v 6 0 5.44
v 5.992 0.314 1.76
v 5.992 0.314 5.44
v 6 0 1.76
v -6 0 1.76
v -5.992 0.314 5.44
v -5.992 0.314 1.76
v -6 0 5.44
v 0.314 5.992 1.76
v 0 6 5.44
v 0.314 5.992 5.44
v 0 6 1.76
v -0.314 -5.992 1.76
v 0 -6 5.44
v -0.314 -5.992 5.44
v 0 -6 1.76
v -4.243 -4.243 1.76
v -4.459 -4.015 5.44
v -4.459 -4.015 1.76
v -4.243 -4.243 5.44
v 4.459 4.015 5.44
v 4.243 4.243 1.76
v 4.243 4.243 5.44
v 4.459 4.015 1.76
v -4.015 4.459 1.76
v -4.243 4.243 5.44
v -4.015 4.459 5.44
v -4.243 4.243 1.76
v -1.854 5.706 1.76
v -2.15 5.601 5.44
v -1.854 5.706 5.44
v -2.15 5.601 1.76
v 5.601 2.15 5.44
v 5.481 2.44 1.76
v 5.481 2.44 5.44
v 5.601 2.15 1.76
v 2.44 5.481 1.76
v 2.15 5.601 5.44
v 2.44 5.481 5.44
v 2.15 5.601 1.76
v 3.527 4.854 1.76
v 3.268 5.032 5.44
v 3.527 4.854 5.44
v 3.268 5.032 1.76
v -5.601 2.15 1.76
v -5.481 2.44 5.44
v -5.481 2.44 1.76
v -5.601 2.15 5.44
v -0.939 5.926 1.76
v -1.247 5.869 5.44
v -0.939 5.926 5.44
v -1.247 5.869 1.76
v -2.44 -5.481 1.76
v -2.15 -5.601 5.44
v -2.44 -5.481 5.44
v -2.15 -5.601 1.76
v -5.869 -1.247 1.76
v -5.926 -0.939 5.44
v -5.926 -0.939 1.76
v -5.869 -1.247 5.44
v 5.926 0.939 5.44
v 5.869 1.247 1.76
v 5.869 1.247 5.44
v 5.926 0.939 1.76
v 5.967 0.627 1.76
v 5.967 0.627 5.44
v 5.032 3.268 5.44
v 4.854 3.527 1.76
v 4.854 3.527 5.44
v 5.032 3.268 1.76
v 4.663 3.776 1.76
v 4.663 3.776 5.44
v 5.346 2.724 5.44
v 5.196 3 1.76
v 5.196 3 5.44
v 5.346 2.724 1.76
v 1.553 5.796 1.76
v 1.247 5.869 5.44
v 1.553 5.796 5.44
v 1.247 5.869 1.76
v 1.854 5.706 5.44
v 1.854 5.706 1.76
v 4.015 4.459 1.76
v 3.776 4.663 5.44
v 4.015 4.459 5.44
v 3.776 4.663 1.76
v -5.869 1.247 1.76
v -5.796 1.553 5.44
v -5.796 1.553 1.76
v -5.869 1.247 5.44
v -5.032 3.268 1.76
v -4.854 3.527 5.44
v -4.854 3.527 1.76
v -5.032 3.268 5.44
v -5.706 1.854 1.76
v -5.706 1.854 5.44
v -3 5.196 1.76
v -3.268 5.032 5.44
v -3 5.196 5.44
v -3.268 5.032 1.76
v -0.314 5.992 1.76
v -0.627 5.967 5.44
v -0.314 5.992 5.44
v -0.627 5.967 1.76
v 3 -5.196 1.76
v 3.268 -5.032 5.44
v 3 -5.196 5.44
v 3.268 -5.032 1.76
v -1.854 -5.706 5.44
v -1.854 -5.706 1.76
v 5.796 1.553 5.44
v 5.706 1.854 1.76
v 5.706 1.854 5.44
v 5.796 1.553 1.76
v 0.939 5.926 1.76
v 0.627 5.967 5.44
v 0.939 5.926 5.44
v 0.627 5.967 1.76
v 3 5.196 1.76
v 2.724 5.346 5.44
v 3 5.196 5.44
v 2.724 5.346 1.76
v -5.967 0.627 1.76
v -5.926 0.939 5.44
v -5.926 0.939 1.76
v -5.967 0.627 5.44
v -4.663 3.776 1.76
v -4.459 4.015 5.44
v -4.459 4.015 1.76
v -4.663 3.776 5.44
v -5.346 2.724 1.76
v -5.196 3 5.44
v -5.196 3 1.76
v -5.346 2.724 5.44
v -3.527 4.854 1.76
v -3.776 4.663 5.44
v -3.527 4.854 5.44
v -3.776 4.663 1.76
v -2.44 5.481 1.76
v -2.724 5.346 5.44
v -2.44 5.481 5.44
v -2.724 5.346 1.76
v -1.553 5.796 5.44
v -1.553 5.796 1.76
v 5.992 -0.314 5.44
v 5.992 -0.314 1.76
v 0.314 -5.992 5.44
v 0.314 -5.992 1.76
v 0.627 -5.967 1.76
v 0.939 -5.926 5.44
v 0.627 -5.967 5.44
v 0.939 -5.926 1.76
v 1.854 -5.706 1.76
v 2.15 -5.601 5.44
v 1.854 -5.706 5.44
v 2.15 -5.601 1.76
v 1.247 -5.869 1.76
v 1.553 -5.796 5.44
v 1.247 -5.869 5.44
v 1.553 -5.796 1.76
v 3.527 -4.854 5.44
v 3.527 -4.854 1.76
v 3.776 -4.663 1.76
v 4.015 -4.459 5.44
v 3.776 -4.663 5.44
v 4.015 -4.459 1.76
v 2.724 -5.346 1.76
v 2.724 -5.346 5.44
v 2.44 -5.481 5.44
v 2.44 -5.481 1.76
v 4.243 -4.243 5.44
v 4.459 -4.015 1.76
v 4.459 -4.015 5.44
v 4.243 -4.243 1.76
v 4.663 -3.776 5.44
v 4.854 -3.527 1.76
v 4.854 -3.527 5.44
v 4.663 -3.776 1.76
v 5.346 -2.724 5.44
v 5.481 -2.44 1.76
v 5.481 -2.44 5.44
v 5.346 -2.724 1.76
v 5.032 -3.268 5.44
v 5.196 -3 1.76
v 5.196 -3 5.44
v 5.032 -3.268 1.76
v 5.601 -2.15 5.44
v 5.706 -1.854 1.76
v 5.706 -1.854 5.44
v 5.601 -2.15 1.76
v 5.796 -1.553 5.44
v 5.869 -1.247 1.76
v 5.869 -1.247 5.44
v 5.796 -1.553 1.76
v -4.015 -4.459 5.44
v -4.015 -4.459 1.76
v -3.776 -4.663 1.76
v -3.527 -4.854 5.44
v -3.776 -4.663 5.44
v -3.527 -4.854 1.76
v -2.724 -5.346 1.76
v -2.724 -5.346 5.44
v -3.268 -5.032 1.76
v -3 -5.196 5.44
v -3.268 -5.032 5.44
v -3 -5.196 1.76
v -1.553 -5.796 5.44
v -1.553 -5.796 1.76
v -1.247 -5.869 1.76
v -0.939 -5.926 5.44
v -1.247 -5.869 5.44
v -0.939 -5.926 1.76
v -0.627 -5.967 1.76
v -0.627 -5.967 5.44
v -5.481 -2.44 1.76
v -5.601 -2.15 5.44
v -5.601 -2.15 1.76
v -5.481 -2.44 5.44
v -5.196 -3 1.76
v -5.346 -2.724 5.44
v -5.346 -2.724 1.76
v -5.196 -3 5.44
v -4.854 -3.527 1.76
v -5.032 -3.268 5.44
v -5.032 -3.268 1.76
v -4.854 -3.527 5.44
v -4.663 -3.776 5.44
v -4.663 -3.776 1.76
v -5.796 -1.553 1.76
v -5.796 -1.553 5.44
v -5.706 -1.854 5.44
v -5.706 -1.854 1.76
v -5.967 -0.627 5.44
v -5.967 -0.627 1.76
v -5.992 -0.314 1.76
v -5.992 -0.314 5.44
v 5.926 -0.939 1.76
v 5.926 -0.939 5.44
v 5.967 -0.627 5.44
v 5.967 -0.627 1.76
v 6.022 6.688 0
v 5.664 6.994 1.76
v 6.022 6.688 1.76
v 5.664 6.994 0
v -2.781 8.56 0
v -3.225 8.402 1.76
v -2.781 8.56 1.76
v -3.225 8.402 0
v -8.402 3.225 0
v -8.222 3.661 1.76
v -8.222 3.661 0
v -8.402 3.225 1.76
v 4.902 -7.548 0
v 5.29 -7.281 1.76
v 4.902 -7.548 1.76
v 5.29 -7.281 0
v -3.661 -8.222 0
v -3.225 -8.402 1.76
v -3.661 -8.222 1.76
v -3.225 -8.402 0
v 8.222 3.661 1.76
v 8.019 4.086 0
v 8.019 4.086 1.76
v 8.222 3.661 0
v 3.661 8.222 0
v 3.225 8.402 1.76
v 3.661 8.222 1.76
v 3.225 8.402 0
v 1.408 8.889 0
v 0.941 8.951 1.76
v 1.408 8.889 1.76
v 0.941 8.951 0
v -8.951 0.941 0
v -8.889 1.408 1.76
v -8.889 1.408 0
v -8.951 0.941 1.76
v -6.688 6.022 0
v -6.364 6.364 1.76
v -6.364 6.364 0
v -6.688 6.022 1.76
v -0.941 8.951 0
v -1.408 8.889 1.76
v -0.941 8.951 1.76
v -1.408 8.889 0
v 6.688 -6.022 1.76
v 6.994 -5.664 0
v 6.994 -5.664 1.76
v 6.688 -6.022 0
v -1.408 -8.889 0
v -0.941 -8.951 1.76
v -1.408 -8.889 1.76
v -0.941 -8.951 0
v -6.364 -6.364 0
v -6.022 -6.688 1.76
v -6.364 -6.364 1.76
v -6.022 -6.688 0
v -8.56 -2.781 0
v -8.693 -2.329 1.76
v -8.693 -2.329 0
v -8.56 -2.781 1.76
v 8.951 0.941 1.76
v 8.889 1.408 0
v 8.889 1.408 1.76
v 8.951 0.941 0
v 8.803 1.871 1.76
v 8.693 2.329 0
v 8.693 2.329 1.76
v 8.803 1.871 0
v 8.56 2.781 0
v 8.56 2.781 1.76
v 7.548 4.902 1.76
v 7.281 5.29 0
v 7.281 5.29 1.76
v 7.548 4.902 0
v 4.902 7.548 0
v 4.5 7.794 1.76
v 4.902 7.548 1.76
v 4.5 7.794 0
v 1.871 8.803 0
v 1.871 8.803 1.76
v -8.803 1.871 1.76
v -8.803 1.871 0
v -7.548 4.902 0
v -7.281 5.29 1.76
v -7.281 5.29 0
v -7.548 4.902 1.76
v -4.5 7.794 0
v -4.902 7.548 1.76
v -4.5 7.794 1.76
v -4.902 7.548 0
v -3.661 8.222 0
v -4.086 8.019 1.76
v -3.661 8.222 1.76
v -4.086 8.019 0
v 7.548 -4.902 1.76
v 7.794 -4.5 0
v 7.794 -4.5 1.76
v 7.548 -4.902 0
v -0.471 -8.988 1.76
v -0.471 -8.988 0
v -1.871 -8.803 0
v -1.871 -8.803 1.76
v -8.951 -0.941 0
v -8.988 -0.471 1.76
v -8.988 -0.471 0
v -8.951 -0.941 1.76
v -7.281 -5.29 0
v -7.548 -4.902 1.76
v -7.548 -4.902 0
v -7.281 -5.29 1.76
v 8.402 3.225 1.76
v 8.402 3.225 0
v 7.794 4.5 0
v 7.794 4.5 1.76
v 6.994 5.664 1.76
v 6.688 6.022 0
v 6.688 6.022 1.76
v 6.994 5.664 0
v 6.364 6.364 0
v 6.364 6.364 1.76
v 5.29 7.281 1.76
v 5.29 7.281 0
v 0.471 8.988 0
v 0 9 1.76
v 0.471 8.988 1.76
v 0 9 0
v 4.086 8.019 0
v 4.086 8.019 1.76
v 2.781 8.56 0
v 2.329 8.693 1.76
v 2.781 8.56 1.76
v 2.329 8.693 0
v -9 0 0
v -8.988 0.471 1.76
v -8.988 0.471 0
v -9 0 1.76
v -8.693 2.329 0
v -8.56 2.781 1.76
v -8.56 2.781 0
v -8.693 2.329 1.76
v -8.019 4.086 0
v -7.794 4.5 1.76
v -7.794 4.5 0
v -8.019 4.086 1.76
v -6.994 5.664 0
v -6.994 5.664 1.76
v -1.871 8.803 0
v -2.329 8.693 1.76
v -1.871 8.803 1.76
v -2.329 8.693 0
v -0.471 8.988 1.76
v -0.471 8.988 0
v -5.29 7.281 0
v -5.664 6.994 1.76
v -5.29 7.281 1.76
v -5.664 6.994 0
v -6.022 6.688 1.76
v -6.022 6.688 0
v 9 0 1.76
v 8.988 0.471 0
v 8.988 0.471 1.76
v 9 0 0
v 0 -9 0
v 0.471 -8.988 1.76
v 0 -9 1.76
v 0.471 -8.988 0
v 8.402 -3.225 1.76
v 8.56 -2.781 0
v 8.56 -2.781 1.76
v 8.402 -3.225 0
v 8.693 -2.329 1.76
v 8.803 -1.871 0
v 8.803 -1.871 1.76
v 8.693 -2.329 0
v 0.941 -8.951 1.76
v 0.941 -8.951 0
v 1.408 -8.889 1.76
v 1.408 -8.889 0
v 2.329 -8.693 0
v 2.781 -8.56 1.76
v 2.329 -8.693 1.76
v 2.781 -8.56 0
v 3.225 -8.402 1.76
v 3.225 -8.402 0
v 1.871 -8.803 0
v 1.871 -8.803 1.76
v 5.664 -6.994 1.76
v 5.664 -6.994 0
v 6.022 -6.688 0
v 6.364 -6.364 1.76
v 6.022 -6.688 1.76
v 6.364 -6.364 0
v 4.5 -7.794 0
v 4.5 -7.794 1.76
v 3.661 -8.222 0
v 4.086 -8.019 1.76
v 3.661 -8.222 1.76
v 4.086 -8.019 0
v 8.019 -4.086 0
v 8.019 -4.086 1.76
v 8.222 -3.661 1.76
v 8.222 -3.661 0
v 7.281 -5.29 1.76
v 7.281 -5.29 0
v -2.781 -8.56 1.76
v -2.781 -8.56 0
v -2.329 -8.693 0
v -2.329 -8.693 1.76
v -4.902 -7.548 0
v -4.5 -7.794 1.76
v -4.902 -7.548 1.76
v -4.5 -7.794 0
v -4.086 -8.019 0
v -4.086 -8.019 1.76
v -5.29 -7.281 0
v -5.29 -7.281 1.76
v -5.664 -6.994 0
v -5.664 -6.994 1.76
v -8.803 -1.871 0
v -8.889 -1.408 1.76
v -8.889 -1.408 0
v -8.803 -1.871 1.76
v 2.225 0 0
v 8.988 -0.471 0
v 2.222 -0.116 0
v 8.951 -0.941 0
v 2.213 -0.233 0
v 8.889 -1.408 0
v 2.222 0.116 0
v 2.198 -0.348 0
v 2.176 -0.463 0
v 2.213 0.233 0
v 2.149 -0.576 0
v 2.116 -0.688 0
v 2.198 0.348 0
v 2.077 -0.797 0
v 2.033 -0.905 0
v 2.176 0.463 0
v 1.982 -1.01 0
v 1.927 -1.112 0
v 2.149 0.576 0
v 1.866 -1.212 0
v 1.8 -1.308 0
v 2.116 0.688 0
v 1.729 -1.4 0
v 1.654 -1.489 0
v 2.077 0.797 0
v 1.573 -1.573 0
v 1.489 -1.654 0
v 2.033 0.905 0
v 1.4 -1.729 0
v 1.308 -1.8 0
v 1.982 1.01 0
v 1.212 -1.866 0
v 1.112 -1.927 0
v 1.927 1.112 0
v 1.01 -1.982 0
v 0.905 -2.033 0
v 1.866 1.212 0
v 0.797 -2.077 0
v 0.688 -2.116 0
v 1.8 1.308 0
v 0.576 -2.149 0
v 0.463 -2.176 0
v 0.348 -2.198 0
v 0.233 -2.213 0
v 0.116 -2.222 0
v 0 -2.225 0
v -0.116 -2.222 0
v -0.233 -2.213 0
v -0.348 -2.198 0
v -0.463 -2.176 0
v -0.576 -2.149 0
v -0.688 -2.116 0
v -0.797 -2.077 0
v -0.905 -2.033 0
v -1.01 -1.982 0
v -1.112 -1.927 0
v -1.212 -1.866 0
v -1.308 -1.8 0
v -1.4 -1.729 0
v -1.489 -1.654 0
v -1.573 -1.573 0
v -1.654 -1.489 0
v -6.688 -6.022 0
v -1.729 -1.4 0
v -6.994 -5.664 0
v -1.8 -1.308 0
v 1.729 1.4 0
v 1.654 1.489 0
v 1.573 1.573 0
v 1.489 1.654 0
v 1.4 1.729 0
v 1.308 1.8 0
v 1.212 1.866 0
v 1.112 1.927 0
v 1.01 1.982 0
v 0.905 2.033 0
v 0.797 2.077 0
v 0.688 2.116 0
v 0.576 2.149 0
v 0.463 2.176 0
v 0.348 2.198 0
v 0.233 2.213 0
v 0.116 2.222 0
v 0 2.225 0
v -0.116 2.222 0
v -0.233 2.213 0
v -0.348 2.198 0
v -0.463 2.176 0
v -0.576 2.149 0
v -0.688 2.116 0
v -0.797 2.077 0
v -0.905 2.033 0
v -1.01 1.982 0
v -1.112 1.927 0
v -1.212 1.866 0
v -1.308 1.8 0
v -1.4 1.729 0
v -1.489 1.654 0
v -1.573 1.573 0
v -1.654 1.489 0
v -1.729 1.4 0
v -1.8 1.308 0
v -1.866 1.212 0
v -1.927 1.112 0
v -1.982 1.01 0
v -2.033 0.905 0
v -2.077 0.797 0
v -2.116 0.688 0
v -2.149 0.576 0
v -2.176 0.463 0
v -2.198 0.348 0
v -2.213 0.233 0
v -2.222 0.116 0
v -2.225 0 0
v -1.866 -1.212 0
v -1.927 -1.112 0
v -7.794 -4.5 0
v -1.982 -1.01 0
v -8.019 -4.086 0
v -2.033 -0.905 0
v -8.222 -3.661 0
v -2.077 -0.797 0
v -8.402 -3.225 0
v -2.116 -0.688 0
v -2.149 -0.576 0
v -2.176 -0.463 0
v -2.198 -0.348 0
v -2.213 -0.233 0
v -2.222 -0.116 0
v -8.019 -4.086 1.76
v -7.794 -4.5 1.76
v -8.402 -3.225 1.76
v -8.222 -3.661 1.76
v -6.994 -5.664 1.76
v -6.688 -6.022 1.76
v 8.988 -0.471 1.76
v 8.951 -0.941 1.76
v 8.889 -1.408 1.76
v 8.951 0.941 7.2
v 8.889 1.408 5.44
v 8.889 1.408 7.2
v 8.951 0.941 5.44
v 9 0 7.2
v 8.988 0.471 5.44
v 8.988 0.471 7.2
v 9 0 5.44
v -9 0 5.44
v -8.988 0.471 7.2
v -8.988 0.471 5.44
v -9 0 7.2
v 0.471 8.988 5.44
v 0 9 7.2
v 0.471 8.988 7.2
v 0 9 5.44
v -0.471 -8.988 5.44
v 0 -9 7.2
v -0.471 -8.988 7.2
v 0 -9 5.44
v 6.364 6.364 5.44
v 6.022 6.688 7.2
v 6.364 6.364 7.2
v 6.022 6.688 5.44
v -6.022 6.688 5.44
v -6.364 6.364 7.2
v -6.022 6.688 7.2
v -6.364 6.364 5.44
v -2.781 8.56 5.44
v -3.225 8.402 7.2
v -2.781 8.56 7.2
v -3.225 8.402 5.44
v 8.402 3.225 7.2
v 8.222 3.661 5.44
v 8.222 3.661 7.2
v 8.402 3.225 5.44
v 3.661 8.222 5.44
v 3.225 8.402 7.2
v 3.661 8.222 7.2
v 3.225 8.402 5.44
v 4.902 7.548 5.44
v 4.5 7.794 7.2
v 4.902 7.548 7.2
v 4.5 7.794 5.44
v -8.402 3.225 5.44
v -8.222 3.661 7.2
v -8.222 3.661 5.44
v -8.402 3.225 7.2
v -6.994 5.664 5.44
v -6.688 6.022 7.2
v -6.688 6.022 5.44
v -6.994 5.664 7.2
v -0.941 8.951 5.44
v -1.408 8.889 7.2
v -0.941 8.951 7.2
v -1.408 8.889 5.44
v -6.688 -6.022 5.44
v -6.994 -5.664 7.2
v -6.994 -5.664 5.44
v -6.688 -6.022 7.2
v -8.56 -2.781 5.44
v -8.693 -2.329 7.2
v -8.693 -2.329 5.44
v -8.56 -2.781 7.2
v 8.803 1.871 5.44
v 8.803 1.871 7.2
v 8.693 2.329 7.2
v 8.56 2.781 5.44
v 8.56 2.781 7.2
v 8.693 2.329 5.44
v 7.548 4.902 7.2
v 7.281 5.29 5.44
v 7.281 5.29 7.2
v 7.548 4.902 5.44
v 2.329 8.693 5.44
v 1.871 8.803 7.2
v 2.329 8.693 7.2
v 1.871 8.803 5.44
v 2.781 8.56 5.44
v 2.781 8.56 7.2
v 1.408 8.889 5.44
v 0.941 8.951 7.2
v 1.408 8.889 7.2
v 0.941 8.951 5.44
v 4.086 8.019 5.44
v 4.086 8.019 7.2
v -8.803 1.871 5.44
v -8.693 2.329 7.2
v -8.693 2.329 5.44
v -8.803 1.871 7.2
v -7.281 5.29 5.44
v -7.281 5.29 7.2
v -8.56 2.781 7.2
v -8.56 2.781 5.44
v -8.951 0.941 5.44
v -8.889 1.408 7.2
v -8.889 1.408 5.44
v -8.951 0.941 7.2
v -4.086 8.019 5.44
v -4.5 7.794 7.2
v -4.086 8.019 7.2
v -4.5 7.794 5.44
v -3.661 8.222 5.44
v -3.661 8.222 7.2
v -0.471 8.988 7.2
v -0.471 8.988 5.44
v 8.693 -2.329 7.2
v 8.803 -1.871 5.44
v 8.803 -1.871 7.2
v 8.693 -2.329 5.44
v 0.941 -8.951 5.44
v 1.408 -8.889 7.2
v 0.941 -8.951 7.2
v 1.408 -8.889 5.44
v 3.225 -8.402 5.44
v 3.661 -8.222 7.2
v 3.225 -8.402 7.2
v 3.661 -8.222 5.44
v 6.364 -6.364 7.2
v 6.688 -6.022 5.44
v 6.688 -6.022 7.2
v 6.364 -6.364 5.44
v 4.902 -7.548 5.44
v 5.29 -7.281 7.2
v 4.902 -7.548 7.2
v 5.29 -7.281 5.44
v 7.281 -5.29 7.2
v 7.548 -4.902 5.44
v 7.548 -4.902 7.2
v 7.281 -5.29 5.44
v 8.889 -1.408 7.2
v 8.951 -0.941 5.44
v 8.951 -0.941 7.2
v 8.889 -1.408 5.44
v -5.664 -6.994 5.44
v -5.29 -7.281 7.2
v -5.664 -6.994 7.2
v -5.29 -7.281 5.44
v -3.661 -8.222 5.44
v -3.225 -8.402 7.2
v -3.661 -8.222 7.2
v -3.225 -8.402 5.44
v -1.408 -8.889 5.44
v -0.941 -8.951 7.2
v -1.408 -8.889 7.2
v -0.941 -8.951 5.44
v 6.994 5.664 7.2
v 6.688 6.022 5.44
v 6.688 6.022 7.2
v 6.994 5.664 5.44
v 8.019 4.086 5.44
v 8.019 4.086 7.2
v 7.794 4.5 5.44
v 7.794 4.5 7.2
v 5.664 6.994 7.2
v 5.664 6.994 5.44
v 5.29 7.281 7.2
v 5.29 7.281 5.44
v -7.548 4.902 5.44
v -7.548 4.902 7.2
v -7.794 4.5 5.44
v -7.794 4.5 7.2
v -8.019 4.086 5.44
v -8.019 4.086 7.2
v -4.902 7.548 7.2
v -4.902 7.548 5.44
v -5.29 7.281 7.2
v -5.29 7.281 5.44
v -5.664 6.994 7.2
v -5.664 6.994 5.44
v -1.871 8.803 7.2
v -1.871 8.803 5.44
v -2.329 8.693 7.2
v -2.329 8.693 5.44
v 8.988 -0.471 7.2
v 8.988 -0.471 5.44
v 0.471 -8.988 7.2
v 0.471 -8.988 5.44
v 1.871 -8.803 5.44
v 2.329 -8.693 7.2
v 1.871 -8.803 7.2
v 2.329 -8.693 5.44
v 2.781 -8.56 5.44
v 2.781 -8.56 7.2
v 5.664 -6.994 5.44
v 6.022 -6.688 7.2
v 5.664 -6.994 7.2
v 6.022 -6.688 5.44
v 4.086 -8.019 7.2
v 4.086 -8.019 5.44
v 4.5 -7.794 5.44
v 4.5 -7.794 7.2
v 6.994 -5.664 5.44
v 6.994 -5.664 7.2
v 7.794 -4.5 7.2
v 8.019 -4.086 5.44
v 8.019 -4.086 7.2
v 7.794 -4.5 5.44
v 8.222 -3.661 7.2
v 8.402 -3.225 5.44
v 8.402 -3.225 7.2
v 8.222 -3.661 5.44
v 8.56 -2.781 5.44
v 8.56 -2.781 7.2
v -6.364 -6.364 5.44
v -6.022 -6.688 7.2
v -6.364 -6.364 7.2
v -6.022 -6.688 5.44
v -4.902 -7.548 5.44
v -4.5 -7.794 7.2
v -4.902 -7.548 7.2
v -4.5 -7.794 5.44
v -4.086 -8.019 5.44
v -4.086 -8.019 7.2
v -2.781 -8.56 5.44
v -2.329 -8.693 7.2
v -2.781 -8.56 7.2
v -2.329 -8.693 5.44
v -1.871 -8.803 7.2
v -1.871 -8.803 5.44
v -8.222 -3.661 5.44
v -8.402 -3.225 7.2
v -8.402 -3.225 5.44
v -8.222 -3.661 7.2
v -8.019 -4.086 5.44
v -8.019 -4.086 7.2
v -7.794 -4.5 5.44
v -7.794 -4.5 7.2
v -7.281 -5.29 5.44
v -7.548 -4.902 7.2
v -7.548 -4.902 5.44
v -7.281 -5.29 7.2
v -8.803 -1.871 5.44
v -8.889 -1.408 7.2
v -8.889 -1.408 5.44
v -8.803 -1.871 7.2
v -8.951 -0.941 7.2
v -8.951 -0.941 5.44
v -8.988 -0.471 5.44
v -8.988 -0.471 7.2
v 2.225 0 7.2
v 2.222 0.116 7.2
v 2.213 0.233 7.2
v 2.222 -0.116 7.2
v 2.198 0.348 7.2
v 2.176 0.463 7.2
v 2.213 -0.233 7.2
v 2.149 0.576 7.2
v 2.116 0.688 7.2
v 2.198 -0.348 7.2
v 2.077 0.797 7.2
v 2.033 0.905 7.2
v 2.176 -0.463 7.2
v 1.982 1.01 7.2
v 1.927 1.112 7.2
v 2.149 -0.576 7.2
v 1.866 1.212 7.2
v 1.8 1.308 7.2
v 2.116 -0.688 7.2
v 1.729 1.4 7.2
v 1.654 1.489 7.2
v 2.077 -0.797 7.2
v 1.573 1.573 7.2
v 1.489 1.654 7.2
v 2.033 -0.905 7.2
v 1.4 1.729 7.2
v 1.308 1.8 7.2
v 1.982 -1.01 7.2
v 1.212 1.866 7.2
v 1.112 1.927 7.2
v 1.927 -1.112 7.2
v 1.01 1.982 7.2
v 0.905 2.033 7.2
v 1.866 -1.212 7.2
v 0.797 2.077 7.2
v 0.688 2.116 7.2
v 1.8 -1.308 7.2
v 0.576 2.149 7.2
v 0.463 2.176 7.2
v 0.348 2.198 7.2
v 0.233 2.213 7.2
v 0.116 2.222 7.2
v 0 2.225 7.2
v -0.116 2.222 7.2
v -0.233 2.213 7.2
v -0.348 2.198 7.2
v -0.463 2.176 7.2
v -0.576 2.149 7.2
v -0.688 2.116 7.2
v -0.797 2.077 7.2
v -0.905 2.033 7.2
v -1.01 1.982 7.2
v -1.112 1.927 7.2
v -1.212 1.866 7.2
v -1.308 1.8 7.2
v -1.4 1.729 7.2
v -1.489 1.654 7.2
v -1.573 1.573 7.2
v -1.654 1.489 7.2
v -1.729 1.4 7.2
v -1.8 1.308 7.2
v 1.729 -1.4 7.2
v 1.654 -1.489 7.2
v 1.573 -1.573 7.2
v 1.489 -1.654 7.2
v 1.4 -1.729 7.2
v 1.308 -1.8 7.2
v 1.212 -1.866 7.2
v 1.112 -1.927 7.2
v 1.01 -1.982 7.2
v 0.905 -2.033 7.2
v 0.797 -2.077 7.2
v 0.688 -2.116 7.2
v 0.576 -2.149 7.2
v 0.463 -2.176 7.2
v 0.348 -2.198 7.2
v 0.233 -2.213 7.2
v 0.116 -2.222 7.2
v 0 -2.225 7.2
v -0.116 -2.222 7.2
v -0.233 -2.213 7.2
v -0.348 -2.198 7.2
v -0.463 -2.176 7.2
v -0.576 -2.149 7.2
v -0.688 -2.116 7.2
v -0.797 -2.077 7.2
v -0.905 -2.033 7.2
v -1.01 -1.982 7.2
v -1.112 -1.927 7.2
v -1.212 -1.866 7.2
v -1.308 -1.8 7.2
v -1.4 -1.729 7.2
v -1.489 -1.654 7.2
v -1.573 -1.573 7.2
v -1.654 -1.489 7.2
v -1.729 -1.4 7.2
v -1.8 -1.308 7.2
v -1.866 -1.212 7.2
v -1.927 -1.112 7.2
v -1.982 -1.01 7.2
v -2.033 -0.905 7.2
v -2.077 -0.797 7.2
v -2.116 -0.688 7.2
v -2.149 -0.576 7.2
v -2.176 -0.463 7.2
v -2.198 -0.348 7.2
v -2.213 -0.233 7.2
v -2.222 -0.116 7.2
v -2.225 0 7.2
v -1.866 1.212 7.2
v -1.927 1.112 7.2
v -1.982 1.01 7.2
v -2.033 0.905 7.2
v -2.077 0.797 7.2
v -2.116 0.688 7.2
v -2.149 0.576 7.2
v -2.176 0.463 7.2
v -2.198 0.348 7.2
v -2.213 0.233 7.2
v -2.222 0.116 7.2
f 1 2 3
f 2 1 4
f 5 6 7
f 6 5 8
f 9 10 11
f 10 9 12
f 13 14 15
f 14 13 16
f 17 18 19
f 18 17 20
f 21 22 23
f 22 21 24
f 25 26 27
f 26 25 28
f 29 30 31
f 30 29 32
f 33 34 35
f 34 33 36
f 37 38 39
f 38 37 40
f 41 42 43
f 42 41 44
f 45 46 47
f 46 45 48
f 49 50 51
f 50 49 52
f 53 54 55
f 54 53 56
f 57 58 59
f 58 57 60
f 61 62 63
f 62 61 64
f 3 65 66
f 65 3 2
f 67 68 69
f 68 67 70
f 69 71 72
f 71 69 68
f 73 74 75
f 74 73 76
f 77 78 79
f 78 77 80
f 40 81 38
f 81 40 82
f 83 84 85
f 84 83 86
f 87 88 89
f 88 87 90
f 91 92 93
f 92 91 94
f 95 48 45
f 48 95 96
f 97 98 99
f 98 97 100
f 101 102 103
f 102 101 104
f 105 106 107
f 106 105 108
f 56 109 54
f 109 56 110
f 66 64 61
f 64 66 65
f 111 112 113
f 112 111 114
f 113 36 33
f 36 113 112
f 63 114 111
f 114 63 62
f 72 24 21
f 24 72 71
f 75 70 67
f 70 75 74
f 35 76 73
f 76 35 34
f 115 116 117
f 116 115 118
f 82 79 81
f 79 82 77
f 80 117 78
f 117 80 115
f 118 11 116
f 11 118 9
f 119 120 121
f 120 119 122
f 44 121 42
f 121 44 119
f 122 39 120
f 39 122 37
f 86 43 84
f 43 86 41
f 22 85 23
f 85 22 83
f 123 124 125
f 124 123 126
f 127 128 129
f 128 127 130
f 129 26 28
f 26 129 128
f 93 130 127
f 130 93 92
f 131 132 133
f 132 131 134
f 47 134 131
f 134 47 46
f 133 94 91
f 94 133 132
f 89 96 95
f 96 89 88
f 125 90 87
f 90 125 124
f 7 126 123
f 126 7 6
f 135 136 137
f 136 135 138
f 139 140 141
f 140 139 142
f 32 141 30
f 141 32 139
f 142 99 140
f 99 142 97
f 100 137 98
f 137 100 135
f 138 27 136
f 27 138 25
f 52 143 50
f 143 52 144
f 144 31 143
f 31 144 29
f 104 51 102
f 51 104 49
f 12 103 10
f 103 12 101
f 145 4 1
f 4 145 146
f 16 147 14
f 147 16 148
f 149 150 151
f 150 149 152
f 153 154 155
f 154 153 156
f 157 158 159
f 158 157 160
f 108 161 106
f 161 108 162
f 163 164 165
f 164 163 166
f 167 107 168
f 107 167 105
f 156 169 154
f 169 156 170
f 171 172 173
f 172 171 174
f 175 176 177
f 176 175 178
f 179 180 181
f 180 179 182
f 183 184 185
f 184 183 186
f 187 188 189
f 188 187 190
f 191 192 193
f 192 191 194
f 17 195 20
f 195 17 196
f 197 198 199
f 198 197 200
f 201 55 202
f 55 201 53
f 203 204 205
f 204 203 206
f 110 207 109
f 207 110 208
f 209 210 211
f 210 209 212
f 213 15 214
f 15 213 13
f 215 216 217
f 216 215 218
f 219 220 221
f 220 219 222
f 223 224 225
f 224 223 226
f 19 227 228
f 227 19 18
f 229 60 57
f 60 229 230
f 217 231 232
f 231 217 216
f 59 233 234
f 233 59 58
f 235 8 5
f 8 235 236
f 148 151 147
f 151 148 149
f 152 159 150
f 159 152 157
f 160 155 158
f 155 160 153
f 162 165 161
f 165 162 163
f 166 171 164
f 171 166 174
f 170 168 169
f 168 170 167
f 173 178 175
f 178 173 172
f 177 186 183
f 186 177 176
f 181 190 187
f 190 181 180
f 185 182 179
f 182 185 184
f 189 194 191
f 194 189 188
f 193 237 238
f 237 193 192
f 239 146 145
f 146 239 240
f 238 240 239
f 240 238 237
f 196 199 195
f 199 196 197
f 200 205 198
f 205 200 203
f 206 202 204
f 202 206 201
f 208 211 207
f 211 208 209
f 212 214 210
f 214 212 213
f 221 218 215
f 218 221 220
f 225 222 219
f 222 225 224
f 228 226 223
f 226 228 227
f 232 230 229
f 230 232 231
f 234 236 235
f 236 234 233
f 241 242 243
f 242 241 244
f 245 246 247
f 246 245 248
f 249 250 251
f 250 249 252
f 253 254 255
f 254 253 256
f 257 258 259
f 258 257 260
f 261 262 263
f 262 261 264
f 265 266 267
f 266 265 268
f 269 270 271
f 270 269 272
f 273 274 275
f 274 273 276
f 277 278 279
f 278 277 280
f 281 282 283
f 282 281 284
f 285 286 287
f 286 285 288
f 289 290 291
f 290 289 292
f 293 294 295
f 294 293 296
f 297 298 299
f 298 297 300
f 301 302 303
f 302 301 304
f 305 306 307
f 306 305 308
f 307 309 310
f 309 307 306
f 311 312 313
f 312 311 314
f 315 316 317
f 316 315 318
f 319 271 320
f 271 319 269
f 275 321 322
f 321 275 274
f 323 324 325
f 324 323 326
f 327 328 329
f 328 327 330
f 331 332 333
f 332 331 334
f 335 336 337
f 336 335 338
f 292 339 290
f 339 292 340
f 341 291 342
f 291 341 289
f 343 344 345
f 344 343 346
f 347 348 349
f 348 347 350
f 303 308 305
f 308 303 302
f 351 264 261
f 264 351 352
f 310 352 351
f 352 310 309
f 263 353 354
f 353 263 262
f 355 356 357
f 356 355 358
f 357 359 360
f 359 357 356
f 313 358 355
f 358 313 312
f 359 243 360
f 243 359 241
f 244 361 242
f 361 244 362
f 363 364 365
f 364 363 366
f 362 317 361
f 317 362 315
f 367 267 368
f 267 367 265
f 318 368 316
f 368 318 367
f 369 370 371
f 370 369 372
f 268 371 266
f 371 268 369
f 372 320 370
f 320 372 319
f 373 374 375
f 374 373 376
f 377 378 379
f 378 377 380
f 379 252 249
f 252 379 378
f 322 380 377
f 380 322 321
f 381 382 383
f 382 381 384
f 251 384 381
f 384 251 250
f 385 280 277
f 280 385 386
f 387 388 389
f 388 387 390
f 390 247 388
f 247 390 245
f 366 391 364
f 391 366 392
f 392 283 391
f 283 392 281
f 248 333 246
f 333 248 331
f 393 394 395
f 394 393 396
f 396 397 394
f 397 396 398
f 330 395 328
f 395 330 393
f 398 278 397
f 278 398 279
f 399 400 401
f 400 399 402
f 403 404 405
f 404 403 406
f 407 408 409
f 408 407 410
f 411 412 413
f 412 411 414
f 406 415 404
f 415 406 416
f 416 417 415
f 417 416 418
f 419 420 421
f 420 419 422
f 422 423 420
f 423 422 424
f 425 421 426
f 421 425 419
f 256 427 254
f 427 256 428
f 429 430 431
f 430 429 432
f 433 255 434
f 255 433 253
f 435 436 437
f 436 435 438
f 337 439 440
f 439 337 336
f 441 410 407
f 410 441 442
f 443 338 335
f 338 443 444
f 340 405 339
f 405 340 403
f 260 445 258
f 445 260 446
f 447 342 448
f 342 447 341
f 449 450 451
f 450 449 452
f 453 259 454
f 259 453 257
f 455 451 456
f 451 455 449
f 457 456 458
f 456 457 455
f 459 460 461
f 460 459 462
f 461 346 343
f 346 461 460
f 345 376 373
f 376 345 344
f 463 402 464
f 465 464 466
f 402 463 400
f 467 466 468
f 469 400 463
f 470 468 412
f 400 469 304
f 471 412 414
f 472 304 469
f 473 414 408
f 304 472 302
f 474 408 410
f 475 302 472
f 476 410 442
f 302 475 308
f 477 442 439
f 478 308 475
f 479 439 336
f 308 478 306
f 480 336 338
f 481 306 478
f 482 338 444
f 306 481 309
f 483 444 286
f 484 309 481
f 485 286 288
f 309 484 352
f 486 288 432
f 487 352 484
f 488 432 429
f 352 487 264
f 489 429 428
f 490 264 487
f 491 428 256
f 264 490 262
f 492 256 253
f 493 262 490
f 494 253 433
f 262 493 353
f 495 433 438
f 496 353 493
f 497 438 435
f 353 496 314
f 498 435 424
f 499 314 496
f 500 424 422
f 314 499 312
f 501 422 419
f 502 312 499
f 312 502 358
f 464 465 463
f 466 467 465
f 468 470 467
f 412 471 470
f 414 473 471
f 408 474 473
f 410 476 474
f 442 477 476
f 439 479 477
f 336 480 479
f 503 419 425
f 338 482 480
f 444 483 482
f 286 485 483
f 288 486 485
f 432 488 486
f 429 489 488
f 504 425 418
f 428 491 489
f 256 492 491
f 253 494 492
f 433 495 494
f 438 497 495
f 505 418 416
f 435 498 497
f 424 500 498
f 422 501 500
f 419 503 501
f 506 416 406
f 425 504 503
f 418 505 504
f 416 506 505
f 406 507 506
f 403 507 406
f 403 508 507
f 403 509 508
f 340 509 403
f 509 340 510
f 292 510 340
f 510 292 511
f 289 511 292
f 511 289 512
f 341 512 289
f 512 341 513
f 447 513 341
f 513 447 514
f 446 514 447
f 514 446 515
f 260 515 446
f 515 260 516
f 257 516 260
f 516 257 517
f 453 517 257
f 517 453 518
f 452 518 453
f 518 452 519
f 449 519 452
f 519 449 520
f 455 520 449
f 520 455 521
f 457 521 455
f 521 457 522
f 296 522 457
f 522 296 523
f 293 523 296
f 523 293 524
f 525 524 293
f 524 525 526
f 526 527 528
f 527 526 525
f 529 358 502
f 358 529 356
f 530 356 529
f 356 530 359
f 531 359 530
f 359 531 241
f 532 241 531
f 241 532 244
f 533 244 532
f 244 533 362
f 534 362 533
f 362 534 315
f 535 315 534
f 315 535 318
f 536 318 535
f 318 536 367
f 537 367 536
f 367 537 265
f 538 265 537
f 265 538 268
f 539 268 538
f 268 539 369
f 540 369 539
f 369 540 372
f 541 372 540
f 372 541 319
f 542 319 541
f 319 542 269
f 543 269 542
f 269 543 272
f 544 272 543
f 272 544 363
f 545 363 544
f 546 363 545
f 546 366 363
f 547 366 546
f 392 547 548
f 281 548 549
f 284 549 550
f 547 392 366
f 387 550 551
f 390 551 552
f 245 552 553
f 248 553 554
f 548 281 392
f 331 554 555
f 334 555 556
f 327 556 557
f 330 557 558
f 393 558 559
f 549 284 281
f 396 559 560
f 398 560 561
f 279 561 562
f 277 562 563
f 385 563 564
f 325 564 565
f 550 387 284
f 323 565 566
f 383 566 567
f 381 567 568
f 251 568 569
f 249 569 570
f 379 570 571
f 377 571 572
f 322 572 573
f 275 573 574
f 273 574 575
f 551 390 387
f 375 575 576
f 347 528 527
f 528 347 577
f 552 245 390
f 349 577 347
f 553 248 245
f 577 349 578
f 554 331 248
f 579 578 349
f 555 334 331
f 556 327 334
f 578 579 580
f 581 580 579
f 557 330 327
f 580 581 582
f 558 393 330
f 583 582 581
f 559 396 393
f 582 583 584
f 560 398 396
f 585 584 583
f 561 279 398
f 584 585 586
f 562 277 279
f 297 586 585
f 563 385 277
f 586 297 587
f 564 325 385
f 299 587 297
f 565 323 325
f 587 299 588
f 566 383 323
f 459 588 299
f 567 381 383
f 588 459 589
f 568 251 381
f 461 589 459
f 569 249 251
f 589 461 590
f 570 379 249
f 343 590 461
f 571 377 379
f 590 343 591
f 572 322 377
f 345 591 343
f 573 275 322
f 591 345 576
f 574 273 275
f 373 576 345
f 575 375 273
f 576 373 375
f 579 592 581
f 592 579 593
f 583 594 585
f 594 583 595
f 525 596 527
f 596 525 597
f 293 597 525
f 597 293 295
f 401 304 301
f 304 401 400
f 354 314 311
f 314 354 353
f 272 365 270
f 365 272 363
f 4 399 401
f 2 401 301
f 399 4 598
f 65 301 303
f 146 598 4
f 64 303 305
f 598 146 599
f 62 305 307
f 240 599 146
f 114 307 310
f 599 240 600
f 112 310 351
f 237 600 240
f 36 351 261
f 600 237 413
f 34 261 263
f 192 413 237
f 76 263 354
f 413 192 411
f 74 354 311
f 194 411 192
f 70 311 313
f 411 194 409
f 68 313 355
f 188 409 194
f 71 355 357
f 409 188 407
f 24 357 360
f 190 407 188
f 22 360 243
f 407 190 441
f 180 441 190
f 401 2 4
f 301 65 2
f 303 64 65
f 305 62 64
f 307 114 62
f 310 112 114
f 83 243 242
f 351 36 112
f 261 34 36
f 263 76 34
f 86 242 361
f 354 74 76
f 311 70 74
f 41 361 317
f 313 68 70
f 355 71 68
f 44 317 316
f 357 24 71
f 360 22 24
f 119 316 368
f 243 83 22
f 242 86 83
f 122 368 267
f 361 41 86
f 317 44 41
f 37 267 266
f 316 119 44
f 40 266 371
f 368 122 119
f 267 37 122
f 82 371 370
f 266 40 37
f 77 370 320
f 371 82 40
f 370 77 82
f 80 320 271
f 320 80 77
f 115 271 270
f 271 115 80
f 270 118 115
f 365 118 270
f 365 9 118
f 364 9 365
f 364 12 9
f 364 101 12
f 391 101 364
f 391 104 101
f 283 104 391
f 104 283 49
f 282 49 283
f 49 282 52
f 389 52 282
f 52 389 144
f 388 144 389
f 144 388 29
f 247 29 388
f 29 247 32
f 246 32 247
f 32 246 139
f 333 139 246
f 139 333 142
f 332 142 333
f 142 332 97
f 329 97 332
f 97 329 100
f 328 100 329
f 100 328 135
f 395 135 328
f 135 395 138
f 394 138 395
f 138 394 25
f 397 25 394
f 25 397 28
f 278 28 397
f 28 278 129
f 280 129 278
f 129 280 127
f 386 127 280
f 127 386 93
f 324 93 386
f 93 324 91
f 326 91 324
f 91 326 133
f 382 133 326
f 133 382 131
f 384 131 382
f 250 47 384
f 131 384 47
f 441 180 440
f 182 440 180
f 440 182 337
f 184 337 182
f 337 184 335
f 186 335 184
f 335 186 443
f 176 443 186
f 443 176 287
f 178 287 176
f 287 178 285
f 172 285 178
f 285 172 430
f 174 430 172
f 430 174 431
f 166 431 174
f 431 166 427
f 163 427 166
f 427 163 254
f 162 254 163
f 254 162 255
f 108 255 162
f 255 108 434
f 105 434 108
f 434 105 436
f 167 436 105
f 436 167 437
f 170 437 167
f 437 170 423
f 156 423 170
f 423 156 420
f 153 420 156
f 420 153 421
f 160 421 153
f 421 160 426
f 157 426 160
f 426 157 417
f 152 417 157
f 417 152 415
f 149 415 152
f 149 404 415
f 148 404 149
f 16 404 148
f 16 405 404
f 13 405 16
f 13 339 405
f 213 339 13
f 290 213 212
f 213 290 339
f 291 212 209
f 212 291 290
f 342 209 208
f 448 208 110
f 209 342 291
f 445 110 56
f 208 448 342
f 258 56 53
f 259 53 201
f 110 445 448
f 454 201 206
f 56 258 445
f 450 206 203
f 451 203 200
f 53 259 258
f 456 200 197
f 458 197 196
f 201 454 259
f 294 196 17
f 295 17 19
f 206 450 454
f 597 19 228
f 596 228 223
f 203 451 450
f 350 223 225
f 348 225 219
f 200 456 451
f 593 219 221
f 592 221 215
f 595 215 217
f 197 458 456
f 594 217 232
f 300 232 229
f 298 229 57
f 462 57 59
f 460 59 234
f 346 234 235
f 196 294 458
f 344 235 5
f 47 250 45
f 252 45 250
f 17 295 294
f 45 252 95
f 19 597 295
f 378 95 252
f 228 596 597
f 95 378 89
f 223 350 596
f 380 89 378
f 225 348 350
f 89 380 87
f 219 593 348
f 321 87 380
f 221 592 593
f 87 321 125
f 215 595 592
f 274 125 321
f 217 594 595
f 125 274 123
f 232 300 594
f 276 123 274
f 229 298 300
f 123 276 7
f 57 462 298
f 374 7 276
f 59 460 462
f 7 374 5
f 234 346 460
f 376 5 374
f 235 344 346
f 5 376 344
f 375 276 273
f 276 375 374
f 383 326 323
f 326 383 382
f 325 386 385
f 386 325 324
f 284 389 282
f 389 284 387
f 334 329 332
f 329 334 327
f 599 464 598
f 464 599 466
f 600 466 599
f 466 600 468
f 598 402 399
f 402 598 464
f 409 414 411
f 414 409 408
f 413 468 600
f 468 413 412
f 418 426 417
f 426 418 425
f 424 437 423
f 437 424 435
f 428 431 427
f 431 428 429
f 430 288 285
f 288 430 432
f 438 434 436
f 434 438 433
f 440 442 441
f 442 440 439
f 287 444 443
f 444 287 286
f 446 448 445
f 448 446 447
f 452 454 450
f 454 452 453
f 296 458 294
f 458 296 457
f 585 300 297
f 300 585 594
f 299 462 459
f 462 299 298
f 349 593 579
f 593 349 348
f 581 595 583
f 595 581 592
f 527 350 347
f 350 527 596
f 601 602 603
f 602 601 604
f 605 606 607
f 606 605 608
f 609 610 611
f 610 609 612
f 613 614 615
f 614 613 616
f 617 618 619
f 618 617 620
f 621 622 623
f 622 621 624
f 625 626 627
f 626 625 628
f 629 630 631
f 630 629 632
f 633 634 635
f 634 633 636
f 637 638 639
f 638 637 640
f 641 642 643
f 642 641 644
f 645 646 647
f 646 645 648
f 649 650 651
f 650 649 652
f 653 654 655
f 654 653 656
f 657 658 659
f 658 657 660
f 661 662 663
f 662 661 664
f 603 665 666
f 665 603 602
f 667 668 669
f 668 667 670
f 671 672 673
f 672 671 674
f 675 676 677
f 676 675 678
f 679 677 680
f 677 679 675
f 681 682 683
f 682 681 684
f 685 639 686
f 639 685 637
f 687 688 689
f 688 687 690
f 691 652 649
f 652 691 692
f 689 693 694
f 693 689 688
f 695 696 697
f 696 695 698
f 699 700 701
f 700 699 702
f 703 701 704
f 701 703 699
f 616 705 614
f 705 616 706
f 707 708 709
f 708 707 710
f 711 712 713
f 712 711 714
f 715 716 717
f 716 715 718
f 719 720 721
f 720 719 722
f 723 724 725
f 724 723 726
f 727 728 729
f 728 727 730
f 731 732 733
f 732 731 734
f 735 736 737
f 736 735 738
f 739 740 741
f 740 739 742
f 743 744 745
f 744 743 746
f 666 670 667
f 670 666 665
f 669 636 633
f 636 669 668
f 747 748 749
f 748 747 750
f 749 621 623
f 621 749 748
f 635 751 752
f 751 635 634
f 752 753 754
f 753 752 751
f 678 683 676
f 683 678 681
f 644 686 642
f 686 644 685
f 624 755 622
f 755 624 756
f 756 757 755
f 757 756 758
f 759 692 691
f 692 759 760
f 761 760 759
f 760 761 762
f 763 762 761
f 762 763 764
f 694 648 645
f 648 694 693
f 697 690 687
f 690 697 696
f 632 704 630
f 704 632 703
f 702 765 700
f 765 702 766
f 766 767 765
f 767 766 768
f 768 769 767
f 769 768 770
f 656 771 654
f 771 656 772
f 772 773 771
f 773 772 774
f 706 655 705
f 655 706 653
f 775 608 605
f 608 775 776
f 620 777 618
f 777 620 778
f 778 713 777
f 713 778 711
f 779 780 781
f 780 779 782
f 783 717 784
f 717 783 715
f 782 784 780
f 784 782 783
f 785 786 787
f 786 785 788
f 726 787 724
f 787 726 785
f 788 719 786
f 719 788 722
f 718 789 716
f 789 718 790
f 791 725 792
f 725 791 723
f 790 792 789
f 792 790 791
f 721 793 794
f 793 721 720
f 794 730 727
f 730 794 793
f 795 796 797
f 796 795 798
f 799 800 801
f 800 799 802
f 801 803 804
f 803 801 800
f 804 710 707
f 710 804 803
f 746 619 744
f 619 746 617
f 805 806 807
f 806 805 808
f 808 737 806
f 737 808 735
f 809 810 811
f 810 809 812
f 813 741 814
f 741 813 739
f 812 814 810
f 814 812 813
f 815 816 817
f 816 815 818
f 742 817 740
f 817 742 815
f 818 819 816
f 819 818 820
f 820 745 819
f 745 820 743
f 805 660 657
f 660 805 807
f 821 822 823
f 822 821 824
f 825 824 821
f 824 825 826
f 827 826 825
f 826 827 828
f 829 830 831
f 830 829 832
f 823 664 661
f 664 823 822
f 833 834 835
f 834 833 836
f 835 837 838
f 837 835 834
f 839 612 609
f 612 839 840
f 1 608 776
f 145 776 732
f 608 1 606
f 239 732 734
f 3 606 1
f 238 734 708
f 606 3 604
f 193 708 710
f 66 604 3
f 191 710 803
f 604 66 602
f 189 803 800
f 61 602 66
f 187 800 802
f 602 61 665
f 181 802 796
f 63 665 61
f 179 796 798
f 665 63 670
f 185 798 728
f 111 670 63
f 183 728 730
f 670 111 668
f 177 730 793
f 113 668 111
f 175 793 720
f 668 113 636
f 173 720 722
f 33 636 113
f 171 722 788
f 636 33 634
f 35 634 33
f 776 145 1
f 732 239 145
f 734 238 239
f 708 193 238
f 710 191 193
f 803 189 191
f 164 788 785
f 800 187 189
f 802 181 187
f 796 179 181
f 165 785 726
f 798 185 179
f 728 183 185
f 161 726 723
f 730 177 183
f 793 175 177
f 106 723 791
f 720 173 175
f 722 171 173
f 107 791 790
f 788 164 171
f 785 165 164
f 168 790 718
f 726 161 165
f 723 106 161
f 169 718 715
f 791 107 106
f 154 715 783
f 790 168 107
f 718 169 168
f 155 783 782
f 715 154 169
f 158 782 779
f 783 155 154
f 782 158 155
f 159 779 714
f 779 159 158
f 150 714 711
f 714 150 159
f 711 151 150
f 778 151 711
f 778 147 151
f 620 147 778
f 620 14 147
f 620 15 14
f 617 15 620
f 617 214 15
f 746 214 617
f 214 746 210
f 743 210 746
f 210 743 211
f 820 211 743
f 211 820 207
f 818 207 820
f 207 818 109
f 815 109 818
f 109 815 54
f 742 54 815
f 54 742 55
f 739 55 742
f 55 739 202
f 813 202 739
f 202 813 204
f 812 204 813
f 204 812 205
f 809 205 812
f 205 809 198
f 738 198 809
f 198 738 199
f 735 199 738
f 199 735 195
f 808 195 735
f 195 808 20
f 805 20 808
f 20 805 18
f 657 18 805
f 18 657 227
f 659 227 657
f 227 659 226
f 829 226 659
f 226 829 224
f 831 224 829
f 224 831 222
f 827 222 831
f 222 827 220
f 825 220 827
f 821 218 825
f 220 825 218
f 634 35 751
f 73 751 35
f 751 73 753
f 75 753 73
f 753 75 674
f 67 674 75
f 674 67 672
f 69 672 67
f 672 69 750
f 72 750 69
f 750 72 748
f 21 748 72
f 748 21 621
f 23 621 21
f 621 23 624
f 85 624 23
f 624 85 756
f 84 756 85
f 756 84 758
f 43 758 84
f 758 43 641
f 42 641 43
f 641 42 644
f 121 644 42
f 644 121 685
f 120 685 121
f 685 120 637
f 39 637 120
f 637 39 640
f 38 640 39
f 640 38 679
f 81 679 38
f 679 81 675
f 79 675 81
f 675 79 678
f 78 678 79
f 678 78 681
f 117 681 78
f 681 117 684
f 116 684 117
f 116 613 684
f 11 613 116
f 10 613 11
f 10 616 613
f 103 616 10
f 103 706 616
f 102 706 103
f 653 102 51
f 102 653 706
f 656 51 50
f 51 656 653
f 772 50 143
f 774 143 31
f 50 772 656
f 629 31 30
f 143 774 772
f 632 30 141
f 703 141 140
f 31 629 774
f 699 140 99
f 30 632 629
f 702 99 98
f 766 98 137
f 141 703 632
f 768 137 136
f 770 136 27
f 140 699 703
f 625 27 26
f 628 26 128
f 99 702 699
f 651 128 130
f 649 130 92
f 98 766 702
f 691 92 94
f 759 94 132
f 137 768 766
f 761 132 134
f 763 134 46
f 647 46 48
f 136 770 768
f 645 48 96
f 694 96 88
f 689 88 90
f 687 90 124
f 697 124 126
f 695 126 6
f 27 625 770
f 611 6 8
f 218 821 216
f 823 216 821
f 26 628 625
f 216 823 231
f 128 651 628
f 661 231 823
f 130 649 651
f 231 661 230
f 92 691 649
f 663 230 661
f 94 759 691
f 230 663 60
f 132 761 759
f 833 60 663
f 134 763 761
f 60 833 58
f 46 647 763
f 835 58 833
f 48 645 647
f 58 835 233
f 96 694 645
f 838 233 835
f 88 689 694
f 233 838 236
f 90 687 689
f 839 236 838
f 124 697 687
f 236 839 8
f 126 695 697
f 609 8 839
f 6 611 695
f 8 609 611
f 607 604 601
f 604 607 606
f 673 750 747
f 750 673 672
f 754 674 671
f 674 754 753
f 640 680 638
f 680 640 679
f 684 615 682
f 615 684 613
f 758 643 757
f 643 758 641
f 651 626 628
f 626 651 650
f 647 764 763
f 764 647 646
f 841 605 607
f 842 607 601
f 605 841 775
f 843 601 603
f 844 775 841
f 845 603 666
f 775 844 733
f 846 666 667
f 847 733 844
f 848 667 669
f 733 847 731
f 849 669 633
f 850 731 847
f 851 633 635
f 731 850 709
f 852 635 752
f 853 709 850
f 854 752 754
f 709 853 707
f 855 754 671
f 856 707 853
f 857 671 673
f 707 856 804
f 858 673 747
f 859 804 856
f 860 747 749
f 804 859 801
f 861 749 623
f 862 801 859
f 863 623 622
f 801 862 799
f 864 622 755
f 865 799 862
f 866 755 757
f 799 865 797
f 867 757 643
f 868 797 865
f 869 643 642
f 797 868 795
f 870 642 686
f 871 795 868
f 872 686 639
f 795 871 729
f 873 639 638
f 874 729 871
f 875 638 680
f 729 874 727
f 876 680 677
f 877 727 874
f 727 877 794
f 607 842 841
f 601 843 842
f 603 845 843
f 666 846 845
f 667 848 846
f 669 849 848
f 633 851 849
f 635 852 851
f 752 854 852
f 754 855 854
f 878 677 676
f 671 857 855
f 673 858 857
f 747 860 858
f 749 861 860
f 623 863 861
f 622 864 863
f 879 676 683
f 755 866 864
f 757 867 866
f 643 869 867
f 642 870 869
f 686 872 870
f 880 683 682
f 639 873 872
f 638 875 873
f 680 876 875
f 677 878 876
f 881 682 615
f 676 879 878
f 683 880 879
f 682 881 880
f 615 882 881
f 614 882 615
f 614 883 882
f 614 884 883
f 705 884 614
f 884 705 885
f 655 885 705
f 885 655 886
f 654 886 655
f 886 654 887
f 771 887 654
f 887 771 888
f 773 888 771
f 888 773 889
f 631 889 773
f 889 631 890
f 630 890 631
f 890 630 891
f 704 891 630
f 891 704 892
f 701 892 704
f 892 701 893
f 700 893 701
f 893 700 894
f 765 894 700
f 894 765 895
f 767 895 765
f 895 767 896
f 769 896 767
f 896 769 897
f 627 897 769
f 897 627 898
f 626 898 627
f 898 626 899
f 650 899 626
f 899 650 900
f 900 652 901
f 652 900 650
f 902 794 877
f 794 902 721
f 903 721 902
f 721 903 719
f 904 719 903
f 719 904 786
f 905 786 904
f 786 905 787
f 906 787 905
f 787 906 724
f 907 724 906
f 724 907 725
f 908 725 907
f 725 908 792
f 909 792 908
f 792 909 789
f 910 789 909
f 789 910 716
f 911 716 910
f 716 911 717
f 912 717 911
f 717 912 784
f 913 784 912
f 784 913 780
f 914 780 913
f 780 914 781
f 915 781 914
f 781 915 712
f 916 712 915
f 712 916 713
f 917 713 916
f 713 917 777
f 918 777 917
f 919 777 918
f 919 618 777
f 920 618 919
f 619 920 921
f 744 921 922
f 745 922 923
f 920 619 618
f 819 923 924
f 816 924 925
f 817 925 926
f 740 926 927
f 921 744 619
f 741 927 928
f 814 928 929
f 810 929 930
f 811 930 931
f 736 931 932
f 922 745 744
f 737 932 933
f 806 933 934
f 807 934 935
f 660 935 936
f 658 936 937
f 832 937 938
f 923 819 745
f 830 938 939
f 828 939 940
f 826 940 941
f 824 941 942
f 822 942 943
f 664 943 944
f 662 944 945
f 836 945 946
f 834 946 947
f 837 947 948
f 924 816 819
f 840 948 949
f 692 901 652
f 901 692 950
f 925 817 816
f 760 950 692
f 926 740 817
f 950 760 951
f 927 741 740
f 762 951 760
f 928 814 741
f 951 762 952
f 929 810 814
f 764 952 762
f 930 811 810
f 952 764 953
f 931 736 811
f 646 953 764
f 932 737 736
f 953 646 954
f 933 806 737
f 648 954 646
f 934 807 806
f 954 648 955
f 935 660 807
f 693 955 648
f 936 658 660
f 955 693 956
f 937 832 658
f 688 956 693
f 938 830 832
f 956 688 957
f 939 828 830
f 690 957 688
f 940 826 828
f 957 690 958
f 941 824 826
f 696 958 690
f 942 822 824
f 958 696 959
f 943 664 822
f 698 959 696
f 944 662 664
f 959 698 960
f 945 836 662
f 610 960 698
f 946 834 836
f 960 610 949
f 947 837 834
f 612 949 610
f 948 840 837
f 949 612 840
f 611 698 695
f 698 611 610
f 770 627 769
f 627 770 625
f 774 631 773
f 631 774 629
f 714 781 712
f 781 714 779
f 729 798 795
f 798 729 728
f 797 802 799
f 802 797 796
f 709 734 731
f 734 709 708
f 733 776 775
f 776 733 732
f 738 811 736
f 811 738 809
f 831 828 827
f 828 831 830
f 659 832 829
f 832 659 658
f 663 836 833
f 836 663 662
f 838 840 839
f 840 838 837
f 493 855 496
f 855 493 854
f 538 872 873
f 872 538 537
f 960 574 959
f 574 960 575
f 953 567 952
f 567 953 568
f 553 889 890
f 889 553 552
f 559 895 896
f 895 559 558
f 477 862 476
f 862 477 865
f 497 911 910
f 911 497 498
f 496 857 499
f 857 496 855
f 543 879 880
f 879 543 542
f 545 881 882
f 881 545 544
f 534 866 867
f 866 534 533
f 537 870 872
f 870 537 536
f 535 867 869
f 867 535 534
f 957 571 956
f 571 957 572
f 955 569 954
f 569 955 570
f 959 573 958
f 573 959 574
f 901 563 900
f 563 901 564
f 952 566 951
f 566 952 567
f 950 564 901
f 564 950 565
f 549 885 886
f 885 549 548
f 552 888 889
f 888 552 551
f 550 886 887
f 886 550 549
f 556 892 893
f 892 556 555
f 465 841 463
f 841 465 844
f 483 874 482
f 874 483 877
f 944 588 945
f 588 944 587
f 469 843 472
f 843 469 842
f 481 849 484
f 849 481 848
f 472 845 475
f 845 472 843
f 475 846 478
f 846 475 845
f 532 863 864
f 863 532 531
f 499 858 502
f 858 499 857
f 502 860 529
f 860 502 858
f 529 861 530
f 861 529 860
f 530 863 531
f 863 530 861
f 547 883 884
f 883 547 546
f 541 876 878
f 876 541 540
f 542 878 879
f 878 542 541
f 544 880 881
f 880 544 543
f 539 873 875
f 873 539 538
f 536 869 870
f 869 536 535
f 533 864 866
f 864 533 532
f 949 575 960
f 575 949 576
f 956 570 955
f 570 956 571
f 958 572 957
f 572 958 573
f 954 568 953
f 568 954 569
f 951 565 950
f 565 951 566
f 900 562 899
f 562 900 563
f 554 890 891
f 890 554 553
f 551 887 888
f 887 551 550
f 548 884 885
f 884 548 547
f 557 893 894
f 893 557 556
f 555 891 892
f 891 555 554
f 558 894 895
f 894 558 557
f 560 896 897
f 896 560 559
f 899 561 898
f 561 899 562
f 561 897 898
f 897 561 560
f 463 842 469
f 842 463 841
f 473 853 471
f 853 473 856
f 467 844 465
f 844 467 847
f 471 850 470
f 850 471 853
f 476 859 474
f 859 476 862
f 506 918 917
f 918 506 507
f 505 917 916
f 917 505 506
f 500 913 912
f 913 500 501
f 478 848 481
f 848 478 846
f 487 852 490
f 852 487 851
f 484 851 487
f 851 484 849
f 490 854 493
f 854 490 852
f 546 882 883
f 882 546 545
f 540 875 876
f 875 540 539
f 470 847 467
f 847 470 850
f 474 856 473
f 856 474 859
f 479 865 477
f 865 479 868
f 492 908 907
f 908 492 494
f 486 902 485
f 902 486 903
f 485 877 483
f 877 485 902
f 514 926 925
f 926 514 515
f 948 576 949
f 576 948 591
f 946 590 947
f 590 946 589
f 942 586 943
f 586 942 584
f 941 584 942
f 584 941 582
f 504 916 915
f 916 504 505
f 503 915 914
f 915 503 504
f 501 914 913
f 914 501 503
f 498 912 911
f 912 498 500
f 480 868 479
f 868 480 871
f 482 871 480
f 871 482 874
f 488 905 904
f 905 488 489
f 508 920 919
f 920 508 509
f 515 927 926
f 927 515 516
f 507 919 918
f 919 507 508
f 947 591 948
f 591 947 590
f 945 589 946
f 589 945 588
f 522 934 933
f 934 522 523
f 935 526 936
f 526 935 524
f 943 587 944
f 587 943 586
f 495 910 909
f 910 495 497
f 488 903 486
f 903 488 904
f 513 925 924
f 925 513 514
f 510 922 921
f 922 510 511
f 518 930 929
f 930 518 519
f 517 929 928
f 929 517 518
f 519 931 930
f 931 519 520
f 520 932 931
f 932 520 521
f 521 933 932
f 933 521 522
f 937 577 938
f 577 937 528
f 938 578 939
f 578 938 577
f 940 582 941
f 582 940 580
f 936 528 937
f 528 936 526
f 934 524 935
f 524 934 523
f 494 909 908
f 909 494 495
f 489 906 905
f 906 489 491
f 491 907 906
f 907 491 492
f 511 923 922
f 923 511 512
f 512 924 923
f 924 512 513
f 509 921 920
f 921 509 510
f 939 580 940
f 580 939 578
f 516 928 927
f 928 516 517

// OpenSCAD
//This is an openscad part used as a pulley to connect to the shaft

//render
//lower_flange();
idler_pulley();

//===========Parameters===========

num_frames = 12; //total number of frames to make cutouts for
panel_width = 1.625*25.4;  //size of each panel

//===========Geometry============
clearance = 0.1; //mm - amount to oversize holes so that parts will assemble

d_shaft = .75*25.4; //0.75" shaft diameter in mm
d_mag = 8.1; //  diamete of magnets in mm
h_mag = 2.1; //mm the heigh of the magnets
d_pin = 0.125*25.4; // diameter of pins used to hold shaft to flange
d_flange = 7*25.4; // outer diameter of the flange 
t_flange = 6; //thickness of the flang in mm
t_hub = 6; //thickness of the material around the hub
h_hub = 25; //height of the hub from the surface of the flange
edge_space = 5; //mm from the edge of the flange to the closest part of the frame
d_base = d_shaft+2*t_hub+6;
t_base = 3; //mm thickness of base web
t_panel = 3;//mm how thick each panel is
panel_cut = 3; //mm how deep of a recess to cut for each panel

h_lip = 1.75; //mm height of the lip that keeps the belt in place
h_body = 3.7; //mm height of the body area the belt rides on

t_lip = 3; //mm diamater of lip above body
d_cut = 4.45; //mm diameter in bore size 
d_body = 12;//mm

fudge = 0.01; //mm - use this value to make sure surfaces aren't coincident
//===========Modules=============
module lower_flange(){
    difference(){
        //Make the core of the flange
        union(){
            //This makes the base of the flange
            //cylinder(r = d_flange/2, h= t_flange, $fn = 360);
            //This makes the hub
            //translate([0,0,t_flange-fudge])
            cylinder(r=d_base,h=t_base,$fn = 120);
            cylinder(r = d_shaft/2+t_hub, h = h_hub+t_flange, $fn = 120);
            //add in a block to mate the disks
            translate([-49/2,-10.1/2,0])
            cube([49,10.1,6+t_base]);
        }
        //Then subtract things from it
        
        //Subtract the hole for the shaft
        translate([0,0,-fudge])
        cylinder(r = d_shaft/2+clearance,h = t_flange+h_hub+2*fudge,$fn = 120);
        
        //cut a pin to register the flange to the shaft
               
        translate([0,0,t_flange+h_hub*.5])
        rotate([90,0,0]) 
        cylinder(r=d_pin/2,h=5*d_shaft+2*t_hub+2*fudge,$fn=20,center=true);
        //subtract the holes for the frames
        for (i=[0:num_frames-1]){
            cord_calc(i);
            mag_holes(i);
            
            
        }
        
 
    }
    
  
    
    
    
    
}
module cord_calc(i){
    theta = 2*3.1415/num_frames;
    r_panel = (d_flange/2-edge_space)*cos(theta/2)-t_panel;
 
    rotate([0,0,i*theta*180/3.1415])
    translate([r_panel,-panel_width/2,t_flange+fudge-panel_cut])
    cube([t_panel+clearance,panel_width+clearance,panel_cut]);
  
}

module mag_holes(i){
    theta = 2*3.1415/num_frames;
    
    rotate([0,0,i*theta*180/3.1415])
    translate([d_flange/2-d_mag/2-edge_space,0,-fudge])
    cylinder(r=d_mag/2+clearance, h=h_mag, $fn = 20);
    
}
module idler_pulley(){
    difference(){
        union(){
        //create the surface of the pulley that the belt rides on
        translate([0,0,h_lip])
        cylinder(r = d_body/2, h = h_body, $fn = 120);
        //lower lip
        cylinder(r = d_body/2+t_lip, h = h_lip+fudge, $fn = 120);
        //upper lip
        translate([0,0,h_lip+h_body-fudge])
        cylinder(r = d_body/2+t_lip, h = h_lip+fudge, $fn = 120);        
    }
        //subtract out center hole
        translate([0,0,-fudge])
        cylinder(r = d_cut/2, h = h_body+2*h_lip+2*fudge,$fn=120);
    
    }
}
